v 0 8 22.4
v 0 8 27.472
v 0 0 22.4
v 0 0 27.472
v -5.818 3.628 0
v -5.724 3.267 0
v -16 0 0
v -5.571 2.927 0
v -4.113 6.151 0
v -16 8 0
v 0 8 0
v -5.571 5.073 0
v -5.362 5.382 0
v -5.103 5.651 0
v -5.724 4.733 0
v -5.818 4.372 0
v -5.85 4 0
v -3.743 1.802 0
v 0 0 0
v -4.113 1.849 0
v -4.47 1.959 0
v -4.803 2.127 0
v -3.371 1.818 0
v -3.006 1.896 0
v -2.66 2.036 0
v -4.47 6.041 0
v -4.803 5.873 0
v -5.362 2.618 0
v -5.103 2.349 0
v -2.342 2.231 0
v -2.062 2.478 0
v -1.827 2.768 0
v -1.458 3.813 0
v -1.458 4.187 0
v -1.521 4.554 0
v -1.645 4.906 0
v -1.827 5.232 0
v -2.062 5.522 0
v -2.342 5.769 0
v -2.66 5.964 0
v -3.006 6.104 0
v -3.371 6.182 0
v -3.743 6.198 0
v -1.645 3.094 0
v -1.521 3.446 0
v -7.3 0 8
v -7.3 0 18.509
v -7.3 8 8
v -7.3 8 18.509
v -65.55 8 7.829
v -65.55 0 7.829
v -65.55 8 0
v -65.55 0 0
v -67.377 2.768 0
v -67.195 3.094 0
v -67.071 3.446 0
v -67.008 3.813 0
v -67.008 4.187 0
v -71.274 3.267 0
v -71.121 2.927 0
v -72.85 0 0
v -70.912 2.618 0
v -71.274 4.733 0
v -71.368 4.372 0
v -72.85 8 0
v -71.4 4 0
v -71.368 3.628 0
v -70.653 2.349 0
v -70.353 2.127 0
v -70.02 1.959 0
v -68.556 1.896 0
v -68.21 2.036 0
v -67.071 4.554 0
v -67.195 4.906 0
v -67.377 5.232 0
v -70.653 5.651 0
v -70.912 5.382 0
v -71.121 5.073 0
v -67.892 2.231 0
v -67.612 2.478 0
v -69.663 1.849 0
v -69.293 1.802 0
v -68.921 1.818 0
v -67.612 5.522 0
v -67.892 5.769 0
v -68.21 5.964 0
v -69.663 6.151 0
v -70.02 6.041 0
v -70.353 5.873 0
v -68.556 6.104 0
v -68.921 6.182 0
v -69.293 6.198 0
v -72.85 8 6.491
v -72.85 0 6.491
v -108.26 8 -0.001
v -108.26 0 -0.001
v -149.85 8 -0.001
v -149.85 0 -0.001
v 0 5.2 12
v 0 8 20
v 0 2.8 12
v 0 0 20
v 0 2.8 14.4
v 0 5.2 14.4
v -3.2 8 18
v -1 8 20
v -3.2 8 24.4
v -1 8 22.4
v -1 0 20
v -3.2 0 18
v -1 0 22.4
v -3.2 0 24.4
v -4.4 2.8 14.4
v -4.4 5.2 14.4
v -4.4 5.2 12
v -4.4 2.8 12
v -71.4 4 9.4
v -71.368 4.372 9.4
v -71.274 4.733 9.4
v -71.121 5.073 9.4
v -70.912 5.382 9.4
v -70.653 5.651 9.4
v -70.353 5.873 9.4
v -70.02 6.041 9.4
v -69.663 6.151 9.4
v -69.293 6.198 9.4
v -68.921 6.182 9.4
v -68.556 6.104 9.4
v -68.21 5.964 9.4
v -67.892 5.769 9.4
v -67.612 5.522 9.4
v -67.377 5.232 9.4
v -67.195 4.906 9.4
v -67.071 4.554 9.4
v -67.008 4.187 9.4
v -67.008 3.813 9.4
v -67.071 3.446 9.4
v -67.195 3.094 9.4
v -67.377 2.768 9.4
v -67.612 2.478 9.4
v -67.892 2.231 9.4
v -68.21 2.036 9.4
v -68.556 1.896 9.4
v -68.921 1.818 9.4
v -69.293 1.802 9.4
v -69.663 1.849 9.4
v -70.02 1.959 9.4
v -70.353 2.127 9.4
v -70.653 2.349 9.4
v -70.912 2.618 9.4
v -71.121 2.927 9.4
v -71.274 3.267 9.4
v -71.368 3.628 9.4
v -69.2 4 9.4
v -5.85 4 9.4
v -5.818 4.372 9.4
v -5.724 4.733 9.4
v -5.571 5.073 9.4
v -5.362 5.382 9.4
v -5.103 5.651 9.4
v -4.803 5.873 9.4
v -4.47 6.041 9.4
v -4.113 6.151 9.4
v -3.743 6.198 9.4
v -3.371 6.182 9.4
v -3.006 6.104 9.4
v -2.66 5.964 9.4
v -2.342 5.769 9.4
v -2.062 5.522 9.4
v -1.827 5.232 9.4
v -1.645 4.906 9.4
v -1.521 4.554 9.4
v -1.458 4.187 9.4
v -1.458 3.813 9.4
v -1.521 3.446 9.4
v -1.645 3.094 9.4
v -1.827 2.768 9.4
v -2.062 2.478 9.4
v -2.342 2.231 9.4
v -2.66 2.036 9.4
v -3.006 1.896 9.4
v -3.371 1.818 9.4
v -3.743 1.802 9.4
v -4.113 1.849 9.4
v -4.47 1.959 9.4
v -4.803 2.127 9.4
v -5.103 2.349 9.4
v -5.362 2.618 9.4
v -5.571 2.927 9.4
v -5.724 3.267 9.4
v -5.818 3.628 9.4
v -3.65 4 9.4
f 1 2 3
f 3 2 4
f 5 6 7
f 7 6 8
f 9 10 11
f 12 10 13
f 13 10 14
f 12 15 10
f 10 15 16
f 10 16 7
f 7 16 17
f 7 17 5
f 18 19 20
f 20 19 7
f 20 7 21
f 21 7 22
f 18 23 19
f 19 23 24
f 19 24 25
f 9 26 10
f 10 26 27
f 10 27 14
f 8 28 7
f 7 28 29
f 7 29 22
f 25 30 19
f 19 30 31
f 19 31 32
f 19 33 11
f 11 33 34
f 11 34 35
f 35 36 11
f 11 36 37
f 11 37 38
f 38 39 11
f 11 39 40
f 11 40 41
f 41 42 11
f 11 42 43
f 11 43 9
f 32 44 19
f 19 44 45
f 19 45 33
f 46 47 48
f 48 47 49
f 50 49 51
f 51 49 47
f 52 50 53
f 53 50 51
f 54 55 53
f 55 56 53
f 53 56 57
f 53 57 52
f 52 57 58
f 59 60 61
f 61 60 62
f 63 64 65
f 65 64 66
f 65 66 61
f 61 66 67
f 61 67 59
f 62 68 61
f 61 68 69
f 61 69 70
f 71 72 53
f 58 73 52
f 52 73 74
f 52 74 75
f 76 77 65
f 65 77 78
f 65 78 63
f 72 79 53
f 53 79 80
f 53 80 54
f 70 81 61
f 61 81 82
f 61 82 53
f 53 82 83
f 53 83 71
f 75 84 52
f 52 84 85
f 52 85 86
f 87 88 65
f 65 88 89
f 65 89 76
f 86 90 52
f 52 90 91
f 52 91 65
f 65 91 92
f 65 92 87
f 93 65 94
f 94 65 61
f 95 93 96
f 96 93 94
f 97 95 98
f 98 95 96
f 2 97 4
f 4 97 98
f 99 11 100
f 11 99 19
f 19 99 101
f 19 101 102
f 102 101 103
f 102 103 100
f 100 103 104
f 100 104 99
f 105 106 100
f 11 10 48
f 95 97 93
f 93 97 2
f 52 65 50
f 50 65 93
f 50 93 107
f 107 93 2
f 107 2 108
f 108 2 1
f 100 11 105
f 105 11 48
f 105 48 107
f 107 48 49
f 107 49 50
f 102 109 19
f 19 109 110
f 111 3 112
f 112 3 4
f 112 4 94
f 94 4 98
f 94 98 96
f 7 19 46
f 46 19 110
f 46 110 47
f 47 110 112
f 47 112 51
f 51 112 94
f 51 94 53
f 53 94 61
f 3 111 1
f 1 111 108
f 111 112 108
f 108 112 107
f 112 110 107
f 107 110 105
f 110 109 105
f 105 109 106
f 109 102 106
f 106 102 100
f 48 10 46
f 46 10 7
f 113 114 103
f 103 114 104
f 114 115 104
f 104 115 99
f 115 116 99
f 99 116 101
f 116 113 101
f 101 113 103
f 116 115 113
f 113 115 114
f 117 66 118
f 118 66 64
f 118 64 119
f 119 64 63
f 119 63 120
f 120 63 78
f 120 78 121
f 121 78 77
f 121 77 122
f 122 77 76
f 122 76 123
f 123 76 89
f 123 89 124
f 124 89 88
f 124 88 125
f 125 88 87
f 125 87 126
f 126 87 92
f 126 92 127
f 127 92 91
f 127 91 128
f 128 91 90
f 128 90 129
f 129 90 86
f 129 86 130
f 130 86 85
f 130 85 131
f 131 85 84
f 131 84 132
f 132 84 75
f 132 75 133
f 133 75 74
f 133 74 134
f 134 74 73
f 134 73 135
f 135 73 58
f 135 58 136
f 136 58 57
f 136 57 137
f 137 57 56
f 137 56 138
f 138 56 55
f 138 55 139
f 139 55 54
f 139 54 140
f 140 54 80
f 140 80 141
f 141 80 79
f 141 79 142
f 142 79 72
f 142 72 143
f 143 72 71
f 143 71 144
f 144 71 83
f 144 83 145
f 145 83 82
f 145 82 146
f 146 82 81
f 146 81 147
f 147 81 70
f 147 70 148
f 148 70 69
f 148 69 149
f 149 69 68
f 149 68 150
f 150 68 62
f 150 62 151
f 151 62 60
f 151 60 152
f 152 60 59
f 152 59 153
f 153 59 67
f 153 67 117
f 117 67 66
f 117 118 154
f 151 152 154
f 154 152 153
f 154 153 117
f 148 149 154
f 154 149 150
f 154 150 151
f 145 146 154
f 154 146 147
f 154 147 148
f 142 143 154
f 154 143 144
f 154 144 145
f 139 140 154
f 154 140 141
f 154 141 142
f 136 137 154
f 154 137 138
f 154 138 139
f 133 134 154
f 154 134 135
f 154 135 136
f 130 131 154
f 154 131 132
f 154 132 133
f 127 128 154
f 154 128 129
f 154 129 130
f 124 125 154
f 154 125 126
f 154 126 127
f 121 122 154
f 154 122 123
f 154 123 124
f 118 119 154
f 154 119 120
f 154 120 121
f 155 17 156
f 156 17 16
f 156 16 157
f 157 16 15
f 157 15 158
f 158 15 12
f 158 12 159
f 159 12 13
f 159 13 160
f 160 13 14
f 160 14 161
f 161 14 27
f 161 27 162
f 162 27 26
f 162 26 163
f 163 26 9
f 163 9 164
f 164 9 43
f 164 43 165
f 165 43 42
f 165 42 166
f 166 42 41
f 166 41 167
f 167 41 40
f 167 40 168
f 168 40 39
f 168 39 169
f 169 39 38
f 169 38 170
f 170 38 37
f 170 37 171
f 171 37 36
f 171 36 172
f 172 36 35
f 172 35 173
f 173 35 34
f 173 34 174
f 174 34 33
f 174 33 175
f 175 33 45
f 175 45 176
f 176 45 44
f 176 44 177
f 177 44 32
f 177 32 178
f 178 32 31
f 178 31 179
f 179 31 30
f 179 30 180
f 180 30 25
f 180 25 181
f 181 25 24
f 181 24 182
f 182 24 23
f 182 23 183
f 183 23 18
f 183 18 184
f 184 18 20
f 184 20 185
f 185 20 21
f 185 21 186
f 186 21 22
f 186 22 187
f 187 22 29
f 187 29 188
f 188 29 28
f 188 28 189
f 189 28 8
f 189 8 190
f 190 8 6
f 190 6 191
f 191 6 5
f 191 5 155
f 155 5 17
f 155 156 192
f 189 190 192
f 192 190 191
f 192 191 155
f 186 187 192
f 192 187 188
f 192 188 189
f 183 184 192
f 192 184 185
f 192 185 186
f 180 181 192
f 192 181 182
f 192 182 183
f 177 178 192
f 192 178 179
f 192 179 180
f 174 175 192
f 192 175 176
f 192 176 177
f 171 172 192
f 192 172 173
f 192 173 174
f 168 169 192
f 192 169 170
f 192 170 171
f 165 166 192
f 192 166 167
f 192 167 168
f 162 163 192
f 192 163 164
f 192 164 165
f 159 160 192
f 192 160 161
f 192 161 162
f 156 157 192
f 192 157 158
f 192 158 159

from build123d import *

# Parameters (mm, degrees)
P_IDAT_VYSUNUT_M1_DEPTH  = 8
ODEBRAT_VYSUNUT_M1_DEPTH = 153.557332159
SKICA5_W                 = 16
SKICA5_H                 = 8
P_IDAT_VYSUNUT_M2_DEPTH  = 8
ODEBRAT_VYSUNUT_M4_DEPTH = 153.557332159
SKICA4_W                 = 2.4
SKICA4_H                 = 2.4
ODEBRAT_VYSUNUT_M2_DEPTH = 4.4
SKICA9_R                 = 2.2
ODEBRAT_VYSUNUT_M5_DEPTH = 9.4


with BuildPart() as part:
    # Skica2 → Přidat vysunutím1 (new body)
    with BuildSketch(Plane(origin=(0, 0, 0), x_dir=(1, 0, 0), z_dir=(0, 1, 0))):
        Polygon((0, 0), (0, -27.47211487), (-149.85, 0.000769495), (-108.259653873, 0.000769495), (-72.85, -6.491091207), (-72.85, 0), (-65.55, 0), (-65.55, -7.829443265), (-7.3, -18.508759343), (-7.3, 0), align=None)
    extrude(amount=P_IDAT_VYSUNUT_M1_DEPTH)

    # Skica3 → Odebrat vysunutím1 (cut, through all)
    with BuildSketch(Plane(origin=(0, 8, 0), x_dir=(1, 0, 0), z_dir=(0, 1, 0))):
        Polygon((0, -20), (-1, -20), (-3.2, -18), (-3.2, -24.4), (-1, -22.4), (0, -22.4), align=None)
    extrude(amount=-ODEBRAT_VYSUNUT_M1_DEPTH, mode=Mode.SUBTRACT)

    # Skica5 → Přidat vysunutím2 (add)
    with BuildSketch(Plane(origin=(0, 8, 0), x_dir=(1, 0, 0), z_dir=(0, 1, 0))):
        with Locations((-8, -4)):
            Rectangle(SKICA5_W, SKICA5_H)
    extrude(amount=-P_IDAT_VYSUNUT_M2_DEPTH)

    # Skica7 → Odebrat vysunutím4 (cut, through all)
    with BuildSketch(Plane.XZ):
        Polygon((-7.3, 8), (-16, 8), (-16, 0), align=None)
    extrude(amount=-ODEBRAT_VYSUNUT_M4_DEPTH, mode=Mode.SUBTRACT)

    # Skica4 → Odebrat vysunutím2 (cut)
    with BuildSketch(Plane(origin=(0, 0, 0), x_dir=(0, 0, -1), z_dir=(1, 0, 0))):
        with Locations((-13.2, 4)):
            Rectangle(SKICA4_W, SKICA4_H)
    extrude(amount=-ODEBRAT_VYSUNUT_M2_DEPTH, mode=Mode.SUBTRACT)

    # Skica9 → Odebrat vysunutím5 (cut)
    with BuildSketch(Plane(origin=(0, 0, 0), x_dir=(-1, 0, 0), z_dir=(0, 0, -1))):
        with Locations((3.65, 4)):
            Circle(SKICA9_R)
        with Locations((69.2, 4)):
            Circle(SKICA9_R)
    extrude(amount=-ODEBRAT_VYSUNUT_M5_DEPTH, mode=Mode.SUBTRACT)


solid = part.part
